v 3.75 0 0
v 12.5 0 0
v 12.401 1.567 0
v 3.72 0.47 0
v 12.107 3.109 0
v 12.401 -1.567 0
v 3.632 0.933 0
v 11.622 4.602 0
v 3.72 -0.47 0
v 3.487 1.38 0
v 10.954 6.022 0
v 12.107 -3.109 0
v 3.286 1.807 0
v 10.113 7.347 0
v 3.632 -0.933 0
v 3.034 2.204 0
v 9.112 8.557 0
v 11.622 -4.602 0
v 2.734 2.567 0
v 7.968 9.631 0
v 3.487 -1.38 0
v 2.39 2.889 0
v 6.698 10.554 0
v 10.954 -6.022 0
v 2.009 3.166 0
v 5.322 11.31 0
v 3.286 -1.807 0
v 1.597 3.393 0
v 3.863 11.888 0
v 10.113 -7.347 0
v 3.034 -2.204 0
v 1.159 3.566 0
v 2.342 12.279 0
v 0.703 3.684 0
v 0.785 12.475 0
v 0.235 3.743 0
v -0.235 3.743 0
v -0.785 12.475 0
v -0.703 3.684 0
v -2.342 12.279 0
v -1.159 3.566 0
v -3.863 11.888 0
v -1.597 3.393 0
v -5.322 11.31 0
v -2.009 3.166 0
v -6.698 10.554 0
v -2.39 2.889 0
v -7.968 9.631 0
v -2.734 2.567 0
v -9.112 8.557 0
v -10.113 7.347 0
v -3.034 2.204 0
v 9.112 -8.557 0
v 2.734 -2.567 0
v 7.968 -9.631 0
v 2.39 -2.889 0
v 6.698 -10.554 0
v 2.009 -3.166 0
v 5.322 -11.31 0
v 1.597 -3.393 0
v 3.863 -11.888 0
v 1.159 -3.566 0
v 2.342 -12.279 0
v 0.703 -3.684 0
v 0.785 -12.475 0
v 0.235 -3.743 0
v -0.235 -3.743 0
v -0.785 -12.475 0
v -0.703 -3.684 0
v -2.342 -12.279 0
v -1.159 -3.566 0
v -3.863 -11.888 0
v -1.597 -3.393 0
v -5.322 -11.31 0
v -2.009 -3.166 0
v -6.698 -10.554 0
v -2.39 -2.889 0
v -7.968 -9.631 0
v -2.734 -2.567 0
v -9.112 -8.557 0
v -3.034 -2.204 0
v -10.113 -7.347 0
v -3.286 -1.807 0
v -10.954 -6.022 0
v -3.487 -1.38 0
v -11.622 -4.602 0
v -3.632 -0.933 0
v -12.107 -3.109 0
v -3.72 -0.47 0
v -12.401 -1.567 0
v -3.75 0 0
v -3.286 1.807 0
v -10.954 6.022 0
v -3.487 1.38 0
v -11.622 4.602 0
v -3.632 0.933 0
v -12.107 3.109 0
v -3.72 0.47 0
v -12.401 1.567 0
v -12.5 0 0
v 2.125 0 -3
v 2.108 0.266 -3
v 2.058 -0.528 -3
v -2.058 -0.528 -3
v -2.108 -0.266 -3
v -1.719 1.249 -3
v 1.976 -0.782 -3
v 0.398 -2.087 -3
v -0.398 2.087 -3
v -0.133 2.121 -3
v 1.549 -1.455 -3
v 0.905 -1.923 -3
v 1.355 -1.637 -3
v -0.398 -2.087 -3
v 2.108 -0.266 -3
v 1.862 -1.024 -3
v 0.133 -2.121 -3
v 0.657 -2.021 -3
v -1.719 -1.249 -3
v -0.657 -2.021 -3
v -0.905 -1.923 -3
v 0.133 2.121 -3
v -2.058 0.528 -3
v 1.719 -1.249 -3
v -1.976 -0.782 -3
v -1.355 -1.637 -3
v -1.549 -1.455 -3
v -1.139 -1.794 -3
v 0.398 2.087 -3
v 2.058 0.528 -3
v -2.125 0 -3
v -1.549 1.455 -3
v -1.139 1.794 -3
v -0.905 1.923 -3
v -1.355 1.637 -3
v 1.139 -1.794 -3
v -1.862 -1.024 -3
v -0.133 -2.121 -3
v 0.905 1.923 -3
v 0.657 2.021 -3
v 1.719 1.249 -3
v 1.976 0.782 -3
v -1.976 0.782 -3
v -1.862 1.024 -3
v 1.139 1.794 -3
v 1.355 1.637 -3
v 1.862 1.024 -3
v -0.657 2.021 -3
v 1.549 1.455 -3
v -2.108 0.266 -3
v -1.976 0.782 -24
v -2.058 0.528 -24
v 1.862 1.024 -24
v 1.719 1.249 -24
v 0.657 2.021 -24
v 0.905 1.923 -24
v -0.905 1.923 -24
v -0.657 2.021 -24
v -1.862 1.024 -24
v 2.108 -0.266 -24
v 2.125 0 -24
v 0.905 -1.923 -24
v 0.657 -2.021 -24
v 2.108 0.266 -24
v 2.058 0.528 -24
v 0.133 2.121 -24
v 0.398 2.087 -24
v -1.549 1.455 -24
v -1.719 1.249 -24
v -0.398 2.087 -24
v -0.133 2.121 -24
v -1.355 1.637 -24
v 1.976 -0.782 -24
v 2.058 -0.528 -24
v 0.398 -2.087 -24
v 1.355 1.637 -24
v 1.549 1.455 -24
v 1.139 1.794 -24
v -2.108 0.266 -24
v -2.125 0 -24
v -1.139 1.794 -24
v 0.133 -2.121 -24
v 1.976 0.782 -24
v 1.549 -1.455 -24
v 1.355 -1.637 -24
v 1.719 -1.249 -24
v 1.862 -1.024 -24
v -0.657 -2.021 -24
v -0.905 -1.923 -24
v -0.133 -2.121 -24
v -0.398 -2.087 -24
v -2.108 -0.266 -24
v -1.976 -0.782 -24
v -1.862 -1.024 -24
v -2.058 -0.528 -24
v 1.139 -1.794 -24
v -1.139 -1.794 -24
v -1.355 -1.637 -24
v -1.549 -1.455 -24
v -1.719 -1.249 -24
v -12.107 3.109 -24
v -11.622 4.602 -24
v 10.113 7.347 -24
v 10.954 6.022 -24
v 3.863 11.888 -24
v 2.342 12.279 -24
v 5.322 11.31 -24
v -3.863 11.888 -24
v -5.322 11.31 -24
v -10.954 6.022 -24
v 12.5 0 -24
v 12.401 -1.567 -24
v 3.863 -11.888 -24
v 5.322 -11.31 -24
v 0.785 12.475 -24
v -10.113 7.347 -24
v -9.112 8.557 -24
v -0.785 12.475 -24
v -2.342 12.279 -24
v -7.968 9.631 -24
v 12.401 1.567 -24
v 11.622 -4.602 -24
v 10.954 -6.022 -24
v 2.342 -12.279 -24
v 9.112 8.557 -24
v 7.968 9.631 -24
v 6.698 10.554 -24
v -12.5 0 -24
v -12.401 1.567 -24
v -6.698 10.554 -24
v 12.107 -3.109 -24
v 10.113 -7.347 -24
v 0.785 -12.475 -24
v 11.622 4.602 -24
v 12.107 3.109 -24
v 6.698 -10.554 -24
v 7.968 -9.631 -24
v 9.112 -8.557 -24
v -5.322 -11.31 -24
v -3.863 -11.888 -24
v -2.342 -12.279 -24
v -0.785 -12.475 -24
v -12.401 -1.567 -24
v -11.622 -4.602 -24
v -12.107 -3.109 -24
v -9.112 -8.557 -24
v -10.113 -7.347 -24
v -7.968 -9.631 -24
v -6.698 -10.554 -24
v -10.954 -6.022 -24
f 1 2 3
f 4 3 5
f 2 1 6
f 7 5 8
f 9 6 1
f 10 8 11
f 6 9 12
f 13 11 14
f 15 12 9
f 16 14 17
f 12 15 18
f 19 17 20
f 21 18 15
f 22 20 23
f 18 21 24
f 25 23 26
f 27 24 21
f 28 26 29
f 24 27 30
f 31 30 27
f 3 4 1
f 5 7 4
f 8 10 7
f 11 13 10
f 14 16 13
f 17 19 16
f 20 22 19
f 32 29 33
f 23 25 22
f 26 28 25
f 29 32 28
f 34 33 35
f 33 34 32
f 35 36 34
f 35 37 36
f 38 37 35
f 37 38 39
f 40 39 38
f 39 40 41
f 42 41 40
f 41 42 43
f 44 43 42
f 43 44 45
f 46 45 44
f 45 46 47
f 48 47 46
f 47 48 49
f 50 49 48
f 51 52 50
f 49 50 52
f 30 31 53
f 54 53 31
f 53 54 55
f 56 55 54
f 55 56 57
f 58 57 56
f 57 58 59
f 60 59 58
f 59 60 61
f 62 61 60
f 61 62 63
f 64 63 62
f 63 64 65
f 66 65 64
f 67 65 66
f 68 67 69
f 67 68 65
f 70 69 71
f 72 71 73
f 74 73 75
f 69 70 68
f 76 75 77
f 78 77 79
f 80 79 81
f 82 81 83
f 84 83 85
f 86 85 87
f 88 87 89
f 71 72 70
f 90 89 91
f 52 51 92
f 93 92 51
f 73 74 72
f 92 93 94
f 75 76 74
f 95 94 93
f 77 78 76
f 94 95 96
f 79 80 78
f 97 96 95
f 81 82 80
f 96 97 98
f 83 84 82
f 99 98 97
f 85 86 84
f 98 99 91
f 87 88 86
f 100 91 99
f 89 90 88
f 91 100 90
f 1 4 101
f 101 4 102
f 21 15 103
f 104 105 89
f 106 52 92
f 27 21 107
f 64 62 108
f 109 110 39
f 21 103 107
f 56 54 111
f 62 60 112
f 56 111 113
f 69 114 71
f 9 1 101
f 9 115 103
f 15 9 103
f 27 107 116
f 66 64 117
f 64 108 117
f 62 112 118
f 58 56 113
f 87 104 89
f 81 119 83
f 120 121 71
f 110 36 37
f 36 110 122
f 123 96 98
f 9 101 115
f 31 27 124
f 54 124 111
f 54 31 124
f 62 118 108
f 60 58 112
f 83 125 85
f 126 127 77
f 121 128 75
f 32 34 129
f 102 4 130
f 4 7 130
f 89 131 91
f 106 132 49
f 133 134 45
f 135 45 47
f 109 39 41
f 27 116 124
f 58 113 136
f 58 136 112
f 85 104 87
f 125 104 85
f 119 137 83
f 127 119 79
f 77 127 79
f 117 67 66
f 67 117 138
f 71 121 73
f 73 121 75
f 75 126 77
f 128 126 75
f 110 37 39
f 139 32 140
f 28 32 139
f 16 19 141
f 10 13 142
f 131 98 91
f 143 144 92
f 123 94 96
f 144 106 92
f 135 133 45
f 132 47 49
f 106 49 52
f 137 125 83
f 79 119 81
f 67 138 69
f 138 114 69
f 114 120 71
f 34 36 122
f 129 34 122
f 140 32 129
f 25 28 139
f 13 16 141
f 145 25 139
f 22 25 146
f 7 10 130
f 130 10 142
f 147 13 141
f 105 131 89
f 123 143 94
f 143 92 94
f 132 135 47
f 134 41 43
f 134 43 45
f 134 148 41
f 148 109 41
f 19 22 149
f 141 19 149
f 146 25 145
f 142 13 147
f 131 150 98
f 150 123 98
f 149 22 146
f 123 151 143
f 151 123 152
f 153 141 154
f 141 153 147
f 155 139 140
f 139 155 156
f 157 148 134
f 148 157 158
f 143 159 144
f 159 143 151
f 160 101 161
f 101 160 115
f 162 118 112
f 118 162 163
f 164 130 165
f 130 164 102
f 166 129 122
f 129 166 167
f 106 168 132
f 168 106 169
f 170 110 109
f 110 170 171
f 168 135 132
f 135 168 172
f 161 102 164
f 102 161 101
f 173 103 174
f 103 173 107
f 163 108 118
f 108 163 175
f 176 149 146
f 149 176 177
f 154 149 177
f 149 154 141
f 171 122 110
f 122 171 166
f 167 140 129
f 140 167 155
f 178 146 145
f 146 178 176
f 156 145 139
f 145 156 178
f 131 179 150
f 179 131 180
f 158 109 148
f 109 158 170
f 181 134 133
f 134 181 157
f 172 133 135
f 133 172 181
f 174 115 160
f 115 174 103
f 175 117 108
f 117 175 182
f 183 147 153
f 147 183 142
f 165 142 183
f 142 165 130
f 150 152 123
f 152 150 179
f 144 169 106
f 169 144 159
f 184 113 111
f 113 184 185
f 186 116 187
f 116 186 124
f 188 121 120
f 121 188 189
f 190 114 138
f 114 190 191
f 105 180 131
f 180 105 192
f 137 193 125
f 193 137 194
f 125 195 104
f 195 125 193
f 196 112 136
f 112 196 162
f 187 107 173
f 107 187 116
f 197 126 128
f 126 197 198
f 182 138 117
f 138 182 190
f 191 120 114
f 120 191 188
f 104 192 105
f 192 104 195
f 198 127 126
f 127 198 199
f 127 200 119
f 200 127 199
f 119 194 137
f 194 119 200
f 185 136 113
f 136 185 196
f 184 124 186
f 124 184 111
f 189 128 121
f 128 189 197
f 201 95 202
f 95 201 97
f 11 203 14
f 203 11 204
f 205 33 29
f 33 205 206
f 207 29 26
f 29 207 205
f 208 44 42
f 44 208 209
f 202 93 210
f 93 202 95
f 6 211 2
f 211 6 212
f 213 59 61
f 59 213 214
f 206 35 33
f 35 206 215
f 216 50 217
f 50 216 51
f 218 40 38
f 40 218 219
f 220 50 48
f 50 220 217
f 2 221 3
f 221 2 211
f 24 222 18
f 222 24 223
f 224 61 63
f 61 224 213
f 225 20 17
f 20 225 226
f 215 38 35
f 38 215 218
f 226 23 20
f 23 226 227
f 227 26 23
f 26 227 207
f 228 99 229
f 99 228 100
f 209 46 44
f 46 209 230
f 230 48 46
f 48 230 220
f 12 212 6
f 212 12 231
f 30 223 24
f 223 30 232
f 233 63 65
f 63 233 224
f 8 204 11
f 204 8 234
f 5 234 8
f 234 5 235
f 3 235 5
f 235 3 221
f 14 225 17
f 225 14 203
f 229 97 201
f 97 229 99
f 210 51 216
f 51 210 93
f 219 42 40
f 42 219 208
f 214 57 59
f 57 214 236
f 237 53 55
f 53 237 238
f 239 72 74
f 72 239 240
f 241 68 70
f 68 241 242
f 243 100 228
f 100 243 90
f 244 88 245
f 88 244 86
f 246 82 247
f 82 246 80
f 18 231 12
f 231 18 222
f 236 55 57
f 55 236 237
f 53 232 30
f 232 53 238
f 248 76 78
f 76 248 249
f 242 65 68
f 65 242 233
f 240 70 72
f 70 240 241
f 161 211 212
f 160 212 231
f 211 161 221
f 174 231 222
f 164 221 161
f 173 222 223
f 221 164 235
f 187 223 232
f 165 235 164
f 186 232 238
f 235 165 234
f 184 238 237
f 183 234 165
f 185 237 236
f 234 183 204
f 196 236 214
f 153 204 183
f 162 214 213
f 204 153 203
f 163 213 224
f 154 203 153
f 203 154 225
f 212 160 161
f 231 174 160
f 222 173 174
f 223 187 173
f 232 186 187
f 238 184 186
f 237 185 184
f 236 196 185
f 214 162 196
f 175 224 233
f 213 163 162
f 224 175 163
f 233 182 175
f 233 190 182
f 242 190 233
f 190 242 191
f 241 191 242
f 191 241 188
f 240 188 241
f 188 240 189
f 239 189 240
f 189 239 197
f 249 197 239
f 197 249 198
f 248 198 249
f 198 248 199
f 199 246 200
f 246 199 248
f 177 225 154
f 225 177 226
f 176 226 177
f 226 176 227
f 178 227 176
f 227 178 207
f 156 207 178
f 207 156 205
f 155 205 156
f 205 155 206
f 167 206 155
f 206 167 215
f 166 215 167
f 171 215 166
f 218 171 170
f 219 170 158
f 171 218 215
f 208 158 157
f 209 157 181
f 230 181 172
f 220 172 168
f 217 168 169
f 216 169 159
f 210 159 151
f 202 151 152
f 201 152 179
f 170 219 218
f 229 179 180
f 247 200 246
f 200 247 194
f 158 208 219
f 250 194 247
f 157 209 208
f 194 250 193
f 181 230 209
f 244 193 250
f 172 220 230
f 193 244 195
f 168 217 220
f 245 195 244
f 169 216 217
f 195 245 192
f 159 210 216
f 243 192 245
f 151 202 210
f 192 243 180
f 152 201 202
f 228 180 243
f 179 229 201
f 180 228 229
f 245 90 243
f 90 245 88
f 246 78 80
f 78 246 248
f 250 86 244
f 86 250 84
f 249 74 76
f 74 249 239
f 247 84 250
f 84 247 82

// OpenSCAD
$fn = 50;


difference() {
	union() {
		translate(v = [0, 0, -24.0000000000]) {
			cylinder(h = 24, r = 12.5000000000);
		}
	}
	union() {
		translate(v = [0, 0, 0]) {
			rotate(a = [0, 0, 0]) {
				difference() {
					union() {
						translate(v = [0, 0, -27.0000000000]) {
							cylinder(h = 27, r = 2.0000000000);
						}
						translate(v = [0, 0, -3]) {
							cylinder(h = 3, r1 = 2.1250000000, r2 = 3.7500000000);
						}
						translate(v = [0, 0, -27.0000000000]) {
							cylinder(h = 27, r = 2.1250000000);
						}
						translate(v = [0, 0, -27.0000000000]) {
							cylinder(h = 27, r = 2.0000000000);
						}
					}
					union();
				}
			}
		}
	}
}
